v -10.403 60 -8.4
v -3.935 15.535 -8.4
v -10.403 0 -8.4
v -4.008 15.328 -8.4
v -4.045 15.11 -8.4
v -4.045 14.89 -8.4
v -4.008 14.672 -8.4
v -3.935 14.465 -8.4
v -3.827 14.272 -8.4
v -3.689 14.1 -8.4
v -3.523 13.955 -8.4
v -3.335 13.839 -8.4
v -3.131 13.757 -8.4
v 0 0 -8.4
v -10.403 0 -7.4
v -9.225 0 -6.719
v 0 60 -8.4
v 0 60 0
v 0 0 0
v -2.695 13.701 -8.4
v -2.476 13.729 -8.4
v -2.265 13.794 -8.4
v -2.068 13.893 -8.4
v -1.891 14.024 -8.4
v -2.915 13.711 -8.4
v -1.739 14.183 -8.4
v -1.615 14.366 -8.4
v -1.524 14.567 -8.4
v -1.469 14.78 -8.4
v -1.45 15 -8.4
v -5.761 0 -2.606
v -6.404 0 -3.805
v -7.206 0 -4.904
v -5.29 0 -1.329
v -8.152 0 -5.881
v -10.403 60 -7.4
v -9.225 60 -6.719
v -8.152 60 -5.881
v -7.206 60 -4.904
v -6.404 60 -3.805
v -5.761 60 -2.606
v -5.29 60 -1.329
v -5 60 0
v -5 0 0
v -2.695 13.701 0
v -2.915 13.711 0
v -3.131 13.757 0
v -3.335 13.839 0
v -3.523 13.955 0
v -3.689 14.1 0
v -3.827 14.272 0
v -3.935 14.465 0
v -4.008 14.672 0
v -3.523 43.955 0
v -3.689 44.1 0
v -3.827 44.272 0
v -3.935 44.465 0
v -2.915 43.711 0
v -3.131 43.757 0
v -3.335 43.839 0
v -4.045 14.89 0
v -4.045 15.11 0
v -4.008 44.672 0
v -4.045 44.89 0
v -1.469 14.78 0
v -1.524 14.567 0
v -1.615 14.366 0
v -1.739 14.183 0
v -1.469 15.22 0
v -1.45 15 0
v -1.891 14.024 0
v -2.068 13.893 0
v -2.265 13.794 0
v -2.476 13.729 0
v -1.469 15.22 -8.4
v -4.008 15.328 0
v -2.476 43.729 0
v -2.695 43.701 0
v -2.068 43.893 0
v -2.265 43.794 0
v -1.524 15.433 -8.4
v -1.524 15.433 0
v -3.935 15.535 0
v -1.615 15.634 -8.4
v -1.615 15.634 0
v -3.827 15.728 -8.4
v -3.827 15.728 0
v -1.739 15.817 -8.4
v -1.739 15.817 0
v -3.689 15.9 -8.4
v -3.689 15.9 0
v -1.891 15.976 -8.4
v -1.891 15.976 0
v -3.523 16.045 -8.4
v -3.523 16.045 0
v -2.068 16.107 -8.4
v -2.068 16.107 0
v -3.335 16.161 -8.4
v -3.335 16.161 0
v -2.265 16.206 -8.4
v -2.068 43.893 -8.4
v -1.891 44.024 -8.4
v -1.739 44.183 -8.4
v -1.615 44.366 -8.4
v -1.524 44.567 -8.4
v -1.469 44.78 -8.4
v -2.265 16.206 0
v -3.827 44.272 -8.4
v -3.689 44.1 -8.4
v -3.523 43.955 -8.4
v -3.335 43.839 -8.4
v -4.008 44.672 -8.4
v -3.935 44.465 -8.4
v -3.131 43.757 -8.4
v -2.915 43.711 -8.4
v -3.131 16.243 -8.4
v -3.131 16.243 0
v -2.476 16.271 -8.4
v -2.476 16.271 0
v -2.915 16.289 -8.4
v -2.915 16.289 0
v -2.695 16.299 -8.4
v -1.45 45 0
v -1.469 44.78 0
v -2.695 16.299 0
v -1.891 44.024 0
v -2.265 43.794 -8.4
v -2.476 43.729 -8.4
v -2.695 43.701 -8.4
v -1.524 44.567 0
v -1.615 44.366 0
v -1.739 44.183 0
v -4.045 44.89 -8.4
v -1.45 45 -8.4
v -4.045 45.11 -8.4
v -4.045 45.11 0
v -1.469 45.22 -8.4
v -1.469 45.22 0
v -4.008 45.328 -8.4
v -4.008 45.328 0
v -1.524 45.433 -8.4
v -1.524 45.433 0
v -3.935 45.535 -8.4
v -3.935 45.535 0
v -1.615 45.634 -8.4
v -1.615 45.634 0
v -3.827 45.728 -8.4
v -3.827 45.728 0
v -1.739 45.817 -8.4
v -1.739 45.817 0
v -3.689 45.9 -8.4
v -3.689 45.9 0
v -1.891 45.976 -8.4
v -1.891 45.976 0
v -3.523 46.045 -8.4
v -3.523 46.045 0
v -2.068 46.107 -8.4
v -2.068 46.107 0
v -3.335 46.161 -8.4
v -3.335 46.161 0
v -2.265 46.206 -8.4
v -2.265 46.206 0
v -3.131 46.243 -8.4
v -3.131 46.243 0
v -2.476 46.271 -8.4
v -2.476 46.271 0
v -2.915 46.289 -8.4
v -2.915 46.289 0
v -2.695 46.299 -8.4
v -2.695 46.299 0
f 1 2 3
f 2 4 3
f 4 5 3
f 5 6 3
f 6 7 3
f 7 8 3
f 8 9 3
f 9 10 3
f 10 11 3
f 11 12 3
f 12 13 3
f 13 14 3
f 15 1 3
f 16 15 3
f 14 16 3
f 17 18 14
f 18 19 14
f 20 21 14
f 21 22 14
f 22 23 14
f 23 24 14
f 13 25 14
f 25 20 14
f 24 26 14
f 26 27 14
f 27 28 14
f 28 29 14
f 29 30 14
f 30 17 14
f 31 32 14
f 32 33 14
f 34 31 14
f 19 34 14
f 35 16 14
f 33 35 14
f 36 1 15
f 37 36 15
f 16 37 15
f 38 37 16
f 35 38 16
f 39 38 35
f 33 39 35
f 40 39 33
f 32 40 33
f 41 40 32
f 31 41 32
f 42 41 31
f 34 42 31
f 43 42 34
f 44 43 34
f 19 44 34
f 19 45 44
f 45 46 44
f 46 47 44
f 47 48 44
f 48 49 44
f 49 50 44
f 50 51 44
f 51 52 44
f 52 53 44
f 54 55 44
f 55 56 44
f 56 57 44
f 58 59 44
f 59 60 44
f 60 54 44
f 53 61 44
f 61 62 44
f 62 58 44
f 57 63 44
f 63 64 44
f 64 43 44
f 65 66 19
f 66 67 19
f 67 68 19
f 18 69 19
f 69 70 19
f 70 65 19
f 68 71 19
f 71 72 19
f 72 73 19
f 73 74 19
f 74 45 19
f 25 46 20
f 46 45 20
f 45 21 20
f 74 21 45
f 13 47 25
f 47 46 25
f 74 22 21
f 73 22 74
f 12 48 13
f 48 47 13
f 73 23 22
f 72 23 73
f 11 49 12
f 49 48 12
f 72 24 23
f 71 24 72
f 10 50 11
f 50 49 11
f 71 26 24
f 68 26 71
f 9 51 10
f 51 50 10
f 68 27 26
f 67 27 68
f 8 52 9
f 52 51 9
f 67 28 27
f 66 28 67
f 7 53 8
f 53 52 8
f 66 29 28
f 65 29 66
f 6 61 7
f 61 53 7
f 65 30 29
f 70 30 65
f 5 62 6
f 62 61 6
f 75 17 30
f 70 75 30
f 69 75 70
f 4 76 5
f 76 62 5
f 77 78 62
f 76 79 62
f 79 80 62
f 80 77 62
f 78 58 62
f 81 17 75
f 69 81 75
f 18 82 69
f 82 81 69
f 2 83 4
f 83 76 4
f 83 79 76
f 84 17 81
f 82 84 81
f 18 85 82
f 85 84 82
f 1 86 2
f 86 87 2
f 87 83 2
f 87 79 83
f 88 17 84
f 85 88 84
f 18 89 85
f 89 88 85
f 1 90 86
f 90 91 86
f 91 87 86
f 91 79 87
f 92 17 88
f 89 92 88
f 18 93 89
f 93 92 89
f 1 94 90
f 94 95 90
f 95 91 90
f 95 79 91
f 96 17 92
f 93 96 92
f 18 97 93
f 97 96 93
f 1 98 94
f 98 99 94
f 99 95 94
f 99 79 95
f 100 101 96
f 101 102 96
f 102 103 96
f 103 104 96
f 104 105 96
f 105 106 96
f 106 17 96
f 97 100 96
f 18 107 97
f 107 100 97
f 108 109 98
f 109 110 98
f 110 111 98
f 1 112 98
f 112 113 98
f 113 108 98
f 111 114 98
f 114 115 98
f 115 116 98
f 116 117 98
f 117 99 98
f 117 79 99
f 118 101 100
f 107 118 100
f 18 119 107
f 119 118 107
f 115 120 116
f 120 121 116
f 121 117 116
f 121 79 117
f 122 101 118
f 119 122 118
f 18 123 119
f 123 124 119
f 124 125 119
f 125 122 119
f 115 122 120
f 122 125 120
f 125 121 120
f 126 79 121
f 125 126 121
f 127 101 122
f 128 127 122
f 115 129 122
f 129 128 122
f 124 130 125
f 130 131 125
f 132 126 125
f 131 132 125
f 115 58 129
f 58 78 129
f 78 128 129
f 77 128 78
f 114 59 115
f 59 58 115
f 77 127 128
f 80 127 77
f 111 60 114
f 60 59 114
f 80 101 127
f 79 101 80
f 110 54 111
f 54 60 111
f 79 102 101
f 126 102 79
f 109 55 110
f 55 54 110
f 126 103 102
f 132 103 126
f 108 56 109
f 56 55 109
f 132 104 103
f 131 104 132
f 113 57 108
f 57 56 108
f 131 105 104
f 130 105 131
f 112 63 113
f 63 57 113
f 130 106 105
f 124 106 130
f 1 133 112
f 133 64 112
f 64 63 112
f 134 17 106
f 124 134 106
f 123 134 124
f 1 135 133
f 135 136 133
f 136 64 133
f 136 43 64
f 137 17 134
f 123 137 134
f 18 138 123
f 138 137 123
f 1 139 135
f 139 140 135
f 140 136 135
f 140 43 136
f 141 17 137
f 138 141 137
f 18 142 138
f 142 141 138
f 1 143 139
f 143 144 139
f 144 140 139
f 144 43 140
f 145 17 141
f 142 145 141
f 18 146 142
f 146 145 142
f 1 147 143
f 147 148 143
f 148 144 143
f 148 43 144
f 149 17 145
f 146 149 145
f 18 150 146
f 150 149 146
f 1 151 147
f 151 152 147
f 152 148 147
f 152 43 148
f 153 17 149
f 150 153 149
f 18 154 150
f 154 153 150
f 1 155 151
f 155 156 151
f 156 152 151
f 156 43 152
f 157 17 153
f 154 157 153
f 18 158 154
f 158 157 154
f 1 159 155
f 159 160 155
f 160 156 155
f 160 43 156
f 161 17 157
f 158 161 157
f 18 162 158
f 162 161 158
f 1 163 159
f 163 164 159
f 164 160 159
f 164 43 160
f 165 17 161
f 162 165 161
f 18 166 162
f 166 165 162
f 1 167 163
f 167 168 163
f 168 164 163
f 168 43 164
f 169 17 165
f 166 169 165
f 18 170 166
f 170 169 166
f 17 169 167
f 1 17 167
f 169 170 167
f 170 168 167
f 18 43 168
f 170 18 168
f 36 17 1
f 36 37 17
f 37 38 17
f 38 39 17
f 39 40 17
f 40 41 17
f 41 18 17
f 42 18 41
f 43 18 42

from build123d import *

# Parameters (mm, degrees)
BOSS_EXTRUDE1_DEPTH        = 60
F_2_6_2_6_DIAMETER_HOLE1_D = 2.6


with BuildPart() as part:
    # Sketch1 → Boss-Extrude1 (new body)
    with BuildSketch(Plane(origin=(0, 0, 0), x_dir=(1, 0, 0), z_dir=(0, 1, 0))):
        with BuildLine():
            Line((0, 0), (0, 8.4))
            Line((0, 8.4), (-10.402546471, 8.4))
            Line((-10.402546471, 8.4), (-10.402546471, 7.4))
            ThreePointArc((-10.402546471, 7.4), (-6.785865437, 4.368315294), (-5, 0))
            Line((-5, 0), (0, 0))
        make_face()
    extrude(amount=BOSS_EXTRUDE1_DEPTH)

    # Ø2.6 (2.6) Diameter Hole1 (through all)
    with Locations(Plane(origin=(-2.75, 45, 0), x_dir=(1, 0, 0), z_dir=(0, 0, 1))):
        with Locations((0, 0), (0, -30)):
            Hole(F_2_6_2_6_DIAMETER_HOLE1_D / 2)


solid = part.part
